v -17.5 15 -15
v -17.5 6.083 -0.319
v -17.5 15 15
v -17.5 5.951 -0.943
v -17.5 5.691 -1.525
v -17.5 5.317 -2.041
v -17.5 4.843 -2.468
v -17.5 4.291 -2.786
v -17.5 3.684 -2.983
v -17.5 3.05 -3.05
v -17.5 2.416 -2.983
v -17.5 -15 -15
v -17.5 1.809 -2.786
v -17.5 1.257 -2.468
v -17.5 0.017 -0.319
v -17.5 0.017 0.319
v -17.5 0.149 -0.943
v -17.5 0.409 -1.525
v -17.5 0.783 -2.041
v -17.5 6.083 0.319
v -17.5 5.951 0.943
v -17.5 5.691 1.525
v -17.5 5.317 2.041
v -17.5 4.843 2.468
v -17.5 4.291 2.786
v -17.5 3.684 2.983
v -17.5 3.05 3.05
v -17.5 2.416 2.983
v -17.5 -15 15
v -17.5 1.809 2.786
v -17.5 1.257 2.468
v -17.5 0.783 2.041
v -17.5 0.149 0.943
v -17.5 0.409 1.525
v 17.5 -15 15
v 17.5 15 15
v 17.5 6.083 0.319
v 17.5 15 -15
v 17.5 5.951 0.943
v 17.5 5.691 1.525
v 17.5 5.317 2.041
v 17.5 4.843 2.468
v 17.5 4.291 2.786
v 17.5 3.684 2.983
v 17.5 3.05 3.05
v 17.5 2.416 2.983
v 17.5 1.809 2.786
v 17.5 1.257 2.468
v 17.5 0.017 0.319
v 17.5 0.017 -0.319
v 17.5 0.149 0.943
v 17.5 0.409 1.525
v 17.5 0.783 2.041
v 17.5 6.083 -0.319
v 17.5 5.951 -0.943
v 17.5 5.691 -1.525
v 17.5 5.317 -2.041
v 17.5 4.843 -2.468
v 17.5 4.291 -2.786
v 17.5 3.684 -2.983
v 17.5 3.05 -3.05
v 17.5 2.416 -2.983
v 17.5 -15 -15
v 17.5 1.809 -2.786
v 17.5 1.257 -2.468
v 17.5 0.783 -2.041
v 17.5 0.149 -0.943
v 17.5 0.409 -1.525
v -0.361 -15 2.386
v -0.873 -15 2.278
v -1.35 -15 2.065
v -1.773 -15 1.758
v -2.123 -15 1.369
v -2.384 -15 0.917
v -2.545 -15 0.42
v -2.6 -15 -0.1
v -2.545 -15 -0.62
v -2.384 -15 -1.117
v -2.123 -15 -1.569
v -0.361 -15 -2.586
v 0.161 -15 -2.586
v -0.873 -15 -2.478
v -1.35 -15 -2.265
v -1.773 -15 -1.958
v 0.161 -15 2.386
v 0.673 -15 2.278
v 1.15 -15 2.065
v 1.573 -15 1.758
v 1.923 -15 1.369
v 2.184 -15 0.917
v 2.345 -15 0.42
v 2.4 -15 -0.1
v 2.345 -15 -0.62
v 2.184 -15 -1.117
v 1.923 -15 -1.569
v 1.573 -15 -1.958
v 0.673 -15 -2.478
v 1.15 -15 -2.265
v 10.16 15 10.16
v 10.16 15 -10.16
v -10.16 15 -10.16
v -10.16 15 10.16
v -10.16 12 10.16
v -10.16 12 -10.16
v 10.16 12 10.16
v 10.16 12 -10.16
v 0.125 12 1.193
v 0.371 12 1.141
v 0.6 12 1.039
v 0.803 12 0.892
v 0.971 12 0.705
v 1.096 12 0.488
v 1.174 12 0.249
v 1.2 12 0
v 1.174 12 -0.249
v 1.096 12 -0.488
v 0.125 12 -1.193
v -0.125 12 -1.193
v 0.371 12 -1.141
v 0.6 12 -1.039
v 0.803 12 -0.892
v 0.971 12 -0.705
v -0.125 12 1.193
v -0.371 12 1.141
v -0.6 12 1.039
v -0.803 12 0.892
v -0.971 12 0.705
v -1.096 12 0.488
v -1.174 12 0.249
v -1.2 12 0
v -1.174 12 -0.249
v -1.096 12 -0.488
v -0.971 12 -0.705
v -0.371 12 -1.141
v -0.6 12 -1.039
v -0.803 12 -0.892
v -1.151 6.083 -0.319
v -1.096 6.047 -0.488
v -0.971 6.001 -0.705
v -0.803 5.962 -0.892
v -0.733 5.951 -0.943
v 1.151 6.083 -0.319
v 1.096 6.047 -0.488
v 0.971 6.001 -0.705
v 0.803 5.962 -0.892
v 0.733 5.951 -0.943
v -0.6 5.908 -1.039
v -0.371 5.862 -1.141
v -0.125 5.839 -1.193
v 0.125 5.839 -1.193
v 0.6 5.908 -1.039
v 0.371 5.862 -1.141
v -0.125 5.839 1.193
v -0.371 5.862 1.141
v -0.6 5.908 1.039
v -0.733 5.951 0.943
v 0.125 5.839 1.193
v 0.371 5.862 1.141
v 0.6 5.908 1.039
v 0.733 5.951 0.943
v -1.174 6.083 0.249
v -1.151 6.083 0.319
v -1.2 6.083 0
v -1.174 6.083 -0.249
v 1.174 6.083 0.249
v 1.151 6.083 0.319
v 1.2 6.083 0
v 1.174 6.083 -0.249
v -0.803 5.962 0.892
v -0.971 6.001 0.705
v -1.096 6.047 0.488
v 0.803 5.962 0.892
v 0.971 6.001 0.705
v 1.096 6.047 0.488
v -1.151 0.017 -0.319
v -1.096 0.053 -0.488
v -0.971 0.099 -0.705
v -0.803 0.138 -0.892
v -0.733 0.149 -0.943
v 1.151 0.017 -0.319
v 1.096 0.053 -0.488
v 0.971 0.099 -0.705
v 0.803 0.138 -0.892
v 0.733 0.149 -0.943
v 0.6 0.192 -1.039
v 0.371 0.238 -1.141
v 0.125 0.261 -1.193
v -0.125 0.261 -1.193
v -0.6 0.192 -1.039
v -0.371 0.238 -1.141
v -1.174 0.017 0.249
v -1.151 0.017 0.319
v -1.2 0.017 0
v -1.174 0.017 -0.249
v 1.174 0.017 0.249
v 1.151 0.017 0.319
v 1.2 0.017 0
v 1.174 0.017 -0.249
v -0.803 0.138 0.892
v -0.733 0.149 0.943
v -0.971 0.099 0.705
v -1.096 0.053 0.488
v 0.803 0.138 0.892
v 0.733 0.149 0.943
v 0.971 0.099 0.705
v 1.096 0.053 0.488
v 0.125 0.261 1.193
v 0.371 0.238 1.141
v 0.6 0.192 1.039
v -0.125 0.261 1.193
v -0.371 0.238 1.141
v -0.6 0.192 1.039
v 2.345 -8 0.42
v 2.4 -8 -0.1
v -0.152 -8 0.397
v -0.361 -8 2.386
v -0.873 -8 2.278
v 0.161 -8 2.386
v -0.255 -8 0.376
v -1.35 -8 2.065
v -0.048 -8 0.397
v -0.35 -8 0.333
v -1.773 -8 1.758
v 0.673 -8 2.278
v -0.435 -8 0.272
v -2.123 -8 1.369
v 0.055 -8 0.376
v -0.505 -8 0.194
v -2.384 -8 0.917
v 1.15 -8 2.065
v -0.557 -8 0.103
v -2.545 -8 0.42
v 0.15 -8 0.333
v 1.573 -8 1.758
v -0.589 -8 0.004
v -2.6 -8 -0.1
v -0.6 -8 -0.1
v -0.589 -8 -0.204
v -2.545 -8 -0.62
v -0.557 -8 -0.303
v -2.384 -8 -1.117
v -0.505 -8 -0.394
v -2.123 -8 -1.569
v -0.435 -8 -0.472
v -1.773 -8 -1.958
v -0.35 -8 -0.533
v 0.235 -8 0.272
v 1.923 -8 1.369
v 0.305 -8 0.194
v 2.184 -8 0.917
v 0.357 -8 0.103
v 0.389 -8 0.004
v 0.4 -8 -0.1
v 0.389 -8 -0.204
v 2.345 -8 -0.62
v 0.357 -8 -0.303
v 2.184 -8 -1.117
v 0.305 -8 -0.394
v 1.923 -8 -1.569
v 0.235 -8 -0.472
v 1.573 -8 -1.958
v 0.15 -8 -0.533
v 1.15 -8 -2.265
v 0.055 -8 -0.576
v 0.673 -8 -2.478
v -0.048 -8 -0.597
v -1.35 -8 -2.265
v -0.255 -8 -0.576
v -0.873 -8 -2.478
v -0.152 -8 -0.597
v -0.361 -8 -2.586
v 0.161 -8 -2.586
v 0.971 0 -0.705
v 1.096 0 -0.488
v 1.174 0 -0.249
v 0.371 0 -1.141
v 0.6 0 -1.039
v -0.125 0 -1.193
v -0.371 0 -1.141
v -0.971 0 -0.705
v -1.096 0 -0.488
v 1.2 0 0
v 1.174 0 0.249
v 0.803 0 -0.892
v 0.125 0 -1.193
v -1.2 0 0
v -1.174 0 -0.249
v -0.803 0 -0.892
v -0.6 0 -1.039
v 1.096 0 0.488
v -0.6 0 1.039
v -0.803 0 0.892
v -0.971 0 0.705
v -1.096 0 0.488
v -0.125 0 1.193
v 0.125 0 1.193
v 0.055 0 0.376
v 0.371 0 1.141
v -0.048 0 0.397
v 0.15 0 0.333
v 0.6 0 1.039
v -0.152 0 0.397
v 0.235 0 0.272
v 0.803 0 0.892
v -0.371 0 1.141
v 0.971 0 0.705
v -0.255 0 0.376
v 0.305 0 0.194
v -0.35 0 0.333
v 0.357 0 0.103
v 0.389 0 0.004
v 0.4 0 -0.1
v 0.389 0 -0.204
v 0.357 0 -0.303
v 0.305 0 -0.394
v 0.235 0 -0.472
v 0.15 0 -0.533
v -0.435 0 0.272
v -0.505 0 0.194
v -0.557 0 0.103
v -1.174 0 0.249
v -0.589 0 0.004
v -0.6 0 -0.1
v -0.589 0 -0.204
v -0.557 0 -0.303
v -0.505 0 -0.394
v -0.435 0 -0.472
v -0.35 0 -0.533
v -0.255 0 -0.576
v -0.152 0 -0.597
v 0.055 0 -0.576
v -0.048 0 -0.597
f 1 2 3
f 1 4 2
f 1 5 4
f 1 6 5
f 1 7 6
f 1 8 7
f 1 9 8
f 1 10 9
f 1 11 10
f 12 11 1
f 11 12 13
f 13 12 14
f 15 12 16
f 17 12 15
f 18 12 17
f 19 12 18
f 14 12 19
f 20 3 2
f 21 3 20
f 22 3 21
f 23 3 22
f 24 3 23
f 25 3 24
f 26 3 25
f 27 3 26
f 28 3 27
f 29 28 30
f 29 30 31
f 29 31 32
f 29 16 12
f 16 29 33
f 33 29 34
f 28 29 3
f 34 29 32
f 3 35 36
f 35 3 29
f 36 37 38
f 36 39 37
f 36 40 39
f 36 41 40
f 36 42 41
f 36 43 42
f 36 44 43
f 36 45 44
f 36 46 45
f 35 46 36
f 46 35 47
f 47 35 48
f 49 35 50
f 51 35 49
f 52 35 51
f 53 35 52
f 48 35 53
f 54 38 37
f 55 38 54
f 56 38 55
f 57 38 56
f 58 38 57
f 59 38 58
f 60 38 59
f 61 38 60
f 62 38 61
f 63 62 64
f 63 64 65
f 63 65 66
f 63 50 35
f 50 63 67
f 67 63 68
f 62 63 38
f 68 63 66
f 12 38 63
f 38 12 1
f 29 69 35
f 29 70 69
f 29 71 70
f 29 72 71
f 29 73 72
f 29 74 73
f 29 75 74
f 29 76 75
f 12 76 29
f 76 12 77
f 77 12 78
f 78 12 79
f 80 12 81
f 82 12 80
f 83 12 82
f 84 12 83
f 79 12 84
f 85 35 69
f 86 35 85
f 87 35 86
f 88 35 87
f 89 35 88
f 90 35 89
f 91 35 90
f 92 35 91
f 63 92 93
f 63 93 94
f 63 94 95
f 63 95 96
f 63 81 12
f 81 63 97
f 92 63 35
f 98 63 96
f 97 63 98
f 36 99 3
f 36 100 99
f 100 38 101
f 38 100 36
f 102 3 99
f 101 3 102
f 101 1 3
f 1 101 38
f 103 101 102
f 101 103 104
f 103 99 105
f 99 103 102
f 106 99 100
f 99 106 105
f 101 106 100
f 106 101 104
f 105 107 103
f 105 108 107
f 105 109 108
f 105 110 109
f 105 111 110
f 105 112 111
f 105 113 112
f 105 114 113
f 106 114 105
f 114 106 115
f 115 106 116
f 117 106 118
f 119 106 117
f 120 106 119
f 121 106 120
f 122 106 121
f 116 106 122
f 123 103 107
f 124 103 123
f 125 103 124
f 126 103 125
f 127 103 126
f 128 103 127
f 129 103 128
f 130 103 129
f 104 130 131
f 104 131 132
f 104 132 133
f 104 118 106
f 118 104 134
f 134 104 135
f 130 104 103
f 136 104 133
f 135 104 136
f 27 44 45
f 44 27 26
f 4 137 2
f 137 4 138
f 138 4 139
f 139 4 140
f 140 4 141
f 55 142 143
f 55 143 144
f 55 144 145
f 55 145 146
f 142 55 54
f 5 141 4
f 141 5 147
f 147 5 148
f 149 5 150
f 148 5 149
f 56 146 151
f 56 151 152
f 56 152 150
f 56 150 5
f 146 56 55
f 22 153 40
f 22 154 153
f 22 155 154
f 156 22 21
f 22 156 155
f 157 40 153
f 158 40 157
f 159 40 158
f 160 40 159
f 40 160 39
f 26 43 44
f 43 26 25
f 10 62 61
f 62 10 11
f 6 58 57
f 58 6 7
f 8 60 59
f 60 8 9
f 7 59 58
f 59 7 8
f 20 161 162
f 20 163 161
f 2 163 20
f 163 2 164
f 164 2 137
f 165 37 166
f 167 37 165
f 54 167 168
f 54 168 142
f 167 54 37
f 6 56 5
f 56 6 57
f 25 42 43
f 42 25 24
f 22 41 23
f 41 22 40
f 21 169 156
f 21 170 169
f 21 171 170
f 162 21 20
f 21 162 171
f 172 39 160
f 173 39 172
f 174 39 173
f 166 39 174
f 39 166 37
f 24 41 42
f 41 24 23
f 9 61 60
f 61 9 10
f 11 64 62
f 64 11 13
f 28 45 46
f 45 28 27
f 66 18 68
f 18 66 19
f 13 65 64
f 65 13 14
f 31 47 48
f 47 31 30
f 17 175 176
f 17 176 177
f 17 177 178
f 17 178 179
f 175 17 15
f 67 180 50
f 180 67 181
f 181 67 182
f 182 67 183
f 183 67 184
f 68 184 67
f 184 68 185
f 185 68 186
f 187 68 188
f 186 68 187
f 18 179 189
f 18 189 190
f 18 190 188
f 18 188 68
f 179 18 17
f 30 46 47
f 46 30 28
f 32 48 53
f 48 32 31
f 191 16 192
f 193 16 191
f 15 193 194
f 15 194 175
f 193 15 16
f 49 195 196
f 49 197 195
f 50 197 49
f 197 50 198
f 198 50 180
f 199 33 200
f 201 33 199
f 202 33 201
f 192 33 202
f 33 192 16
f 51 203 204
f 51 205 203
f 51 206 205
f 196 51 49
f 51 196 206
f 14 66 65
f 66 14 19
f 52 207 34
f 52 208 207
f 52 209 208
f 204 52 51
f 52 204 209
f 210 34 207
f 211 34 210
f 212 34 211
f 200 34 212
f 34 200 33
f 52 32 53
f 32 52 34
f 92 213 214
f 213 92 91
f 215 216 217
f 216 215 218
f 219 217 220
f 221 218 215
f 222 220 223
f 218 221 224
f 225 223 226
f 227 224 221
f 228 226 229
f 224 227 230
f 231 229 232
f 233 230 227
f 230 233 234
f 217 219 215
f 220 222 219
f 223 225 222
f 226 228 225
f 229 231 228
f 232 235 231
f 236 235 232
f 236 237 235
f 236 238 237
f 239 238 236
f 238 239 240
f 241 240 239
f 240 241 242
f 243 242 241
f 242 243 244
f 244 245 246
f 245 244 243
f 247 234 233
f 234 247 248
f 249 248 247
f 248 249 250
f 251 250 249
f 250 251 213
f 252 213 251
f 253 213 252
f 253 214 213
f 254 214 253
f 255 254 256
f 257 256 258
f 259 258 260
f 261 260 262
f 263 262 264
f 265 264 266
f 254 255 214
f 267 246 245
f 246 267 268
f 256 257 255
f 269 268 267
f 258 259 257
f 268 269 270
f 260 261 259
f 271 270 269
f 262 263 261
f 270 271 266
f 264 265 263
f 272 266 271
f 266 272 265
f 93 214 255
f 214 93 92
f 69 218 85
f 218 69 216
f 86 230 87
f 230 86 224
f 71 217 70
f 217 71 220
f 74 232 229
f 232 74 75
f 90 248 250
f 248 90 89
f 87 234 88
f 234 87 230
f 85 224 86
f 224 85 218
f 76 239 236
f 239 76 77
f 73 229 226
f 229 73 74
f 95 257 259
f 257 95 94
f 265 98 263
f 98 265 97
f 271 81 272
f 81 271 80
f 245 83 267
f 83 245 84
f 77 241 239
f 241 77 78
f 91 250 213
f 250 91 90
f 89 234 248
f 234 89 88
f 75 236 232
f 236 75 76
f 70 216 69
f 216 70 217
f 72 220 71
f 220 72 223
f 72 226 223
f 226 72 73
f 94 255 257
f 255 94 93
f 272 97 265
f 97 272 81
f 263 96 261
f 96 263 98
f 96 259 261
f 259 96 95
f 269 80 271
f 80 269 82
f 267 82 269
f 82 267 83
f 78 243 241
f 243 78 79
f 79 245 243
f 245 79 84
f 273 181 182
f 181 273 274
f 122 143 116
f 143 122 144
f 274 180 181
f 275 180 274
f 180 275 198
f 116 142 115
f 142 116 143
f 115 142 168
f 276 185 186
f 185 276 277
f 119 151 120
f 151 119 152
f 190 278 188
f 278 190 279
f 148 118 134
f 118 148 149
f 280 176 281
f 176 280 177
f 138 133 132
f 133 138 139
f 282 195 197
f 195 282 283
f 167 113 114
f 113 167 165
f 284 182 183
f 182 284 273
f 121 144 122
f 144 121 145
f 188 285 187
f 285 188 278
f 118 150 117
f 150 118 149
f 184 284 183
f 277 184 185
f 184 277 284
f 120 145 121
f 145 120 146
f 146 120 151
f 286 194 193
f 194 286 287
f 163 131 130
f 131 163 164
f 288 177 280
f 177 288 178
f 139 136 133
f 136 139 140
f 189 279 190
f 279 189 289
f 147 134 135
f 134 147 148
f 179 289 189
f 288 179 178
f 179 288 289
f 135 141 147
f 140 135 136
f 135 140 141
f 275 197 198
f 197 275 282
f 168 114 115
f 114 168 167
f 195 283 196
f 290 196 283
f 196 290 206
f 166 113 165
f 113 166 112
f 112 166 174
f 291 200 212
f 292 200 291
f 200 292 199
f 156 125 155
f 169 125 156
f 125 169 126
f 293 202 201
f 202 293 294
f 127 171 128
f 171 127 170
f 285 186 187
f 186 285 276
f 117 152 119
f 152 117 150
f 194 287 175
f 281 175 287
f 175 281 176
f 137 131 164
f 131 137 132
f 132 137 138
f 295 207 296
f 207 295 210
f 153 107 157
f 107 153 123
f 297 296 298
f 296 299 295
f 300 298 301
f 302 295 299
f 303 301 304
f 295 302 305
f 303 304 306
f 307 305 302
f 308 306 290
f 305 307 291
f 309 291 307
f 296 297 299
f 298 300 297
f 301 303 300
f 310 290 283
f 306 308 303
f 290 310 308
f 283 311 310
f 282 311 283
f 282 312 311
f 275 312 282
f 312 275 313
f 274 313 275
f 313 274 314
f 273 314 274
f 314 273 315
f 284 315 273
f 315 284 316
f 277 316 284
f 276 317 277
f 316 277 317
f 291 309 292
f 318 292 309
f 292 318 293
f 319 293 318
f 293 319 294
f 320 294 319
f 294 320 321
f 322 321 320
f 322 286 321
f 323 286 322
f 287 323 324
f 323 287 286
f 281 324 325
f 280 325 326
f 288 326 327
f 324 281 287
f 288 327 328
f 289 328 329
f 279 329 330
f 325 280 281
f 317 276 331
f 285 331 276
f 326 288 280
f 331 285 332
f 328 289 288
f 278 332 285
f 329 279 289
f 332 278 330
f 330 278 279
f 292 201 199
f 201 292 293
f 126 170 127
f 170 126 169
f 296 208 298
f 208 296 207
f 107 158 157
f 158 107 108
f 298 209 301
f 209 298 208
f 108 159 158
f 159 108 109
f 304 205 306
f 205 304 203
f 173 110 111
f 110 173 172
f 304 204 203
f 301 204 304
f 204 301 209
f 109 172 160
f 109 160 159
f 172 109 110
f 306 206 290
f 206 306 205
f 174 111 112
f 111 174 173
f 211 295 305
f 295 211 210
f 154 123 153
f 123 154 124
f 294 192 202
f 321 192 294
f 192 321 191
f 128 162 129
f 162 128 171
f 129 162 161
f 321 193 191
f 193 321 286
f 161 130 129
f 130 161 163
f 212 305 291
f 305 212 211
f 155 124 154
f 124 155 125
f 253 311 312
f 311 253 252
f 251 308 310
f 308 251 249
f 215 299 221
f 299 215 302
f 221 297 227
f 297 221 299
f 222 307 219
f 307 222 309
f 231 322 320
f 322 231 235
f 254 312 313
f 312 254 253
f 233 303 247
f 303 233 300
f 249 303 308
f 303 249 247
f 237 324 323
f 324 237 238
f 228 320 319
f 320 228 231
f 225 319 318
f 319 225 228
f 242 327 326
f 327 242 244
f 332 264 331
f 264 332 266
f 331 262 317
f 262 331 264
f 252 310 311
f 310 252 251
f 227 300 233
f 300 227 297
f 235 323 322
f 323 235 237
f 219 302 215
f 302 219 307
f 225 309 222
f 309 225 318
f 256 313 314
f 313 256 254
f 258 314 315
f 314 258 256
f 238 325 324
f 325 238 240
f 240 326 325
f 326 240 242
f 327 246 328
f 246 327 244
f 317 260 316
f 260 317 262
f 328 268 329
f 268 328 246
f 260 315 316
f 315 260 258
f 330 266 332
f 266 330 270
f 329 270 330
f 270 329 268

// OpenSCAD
// ******Flow Through colorimeter Nano Castro, Pablo Cremades****//

$fn=30;
// Parametros del cubo de medición
cube_h=30; 
cube_w=30;
cube_l=35;

// Parámetros TCS34725
tcspcb_w=0.8*25.4;
tcspcb_l=0.8*25.4;
tcspcb_depth=3;
tcspcb_led_h=1.4;
sensorloc_w=0.39;//ubicación del sensor en ancho pcb
sensorloc_l=0.41;//ubicación del sensor en alto pcb
sensor_w=2;
sensor_l=2.4;

// Parámetros del OPT101
//sensor_w=6.12;
//sensor_l=9.34;
//sensor_depth=1.45;
// Parametros de photodiodo
//photo_w=2.2;

// Parametros del tubo
tube_diam=6.10;
// Parametros del LED
led_diam=5;
led_l=7;
// Parametro haz de luz
light_diam=1;

difference(){
cube([cube_l,cube_w,cube_h],center=true);

/// Para OPT101
//translate([0,cube_w/2-sensor_depth/2,0])
//cube([sensor_l,sensor_depth,sensor_w],center=true);//abertura para sensor
//translate([0,cube_w/2-tube_diam/2,0])
//cube([photo_w,tube_diam,photo_w],center=true);

translate([-tcspcb_w/2,cube_w/2-tcspcb_depth,-tcspcb_l/2])
cube([tcspcb_w,tcspcb_depth,tcspcb_l]);

rotate([0,90,0])
translate([0,tube_diam/2,-0.1])
#cylinder(r=tube_diam/2,h=3*cube_w,center=true);//abertura para paso del tubo de fluido
     
translate([-0.1,-cube_w/2+led_l/2,-0.1])
rotate([90,0,0])
    cylinder(r=led_diam/2,h=led_l,center=true);//abertura para led
rotate([-90,0,0])
cylinder(d=sensor_l,h=cube_w/2);
translate([-0.1,0,-0.1])
rotate([90,0,0]) 
#cylinder(r=light_diam/2,h=1.5*cube_w,center=true);


}
